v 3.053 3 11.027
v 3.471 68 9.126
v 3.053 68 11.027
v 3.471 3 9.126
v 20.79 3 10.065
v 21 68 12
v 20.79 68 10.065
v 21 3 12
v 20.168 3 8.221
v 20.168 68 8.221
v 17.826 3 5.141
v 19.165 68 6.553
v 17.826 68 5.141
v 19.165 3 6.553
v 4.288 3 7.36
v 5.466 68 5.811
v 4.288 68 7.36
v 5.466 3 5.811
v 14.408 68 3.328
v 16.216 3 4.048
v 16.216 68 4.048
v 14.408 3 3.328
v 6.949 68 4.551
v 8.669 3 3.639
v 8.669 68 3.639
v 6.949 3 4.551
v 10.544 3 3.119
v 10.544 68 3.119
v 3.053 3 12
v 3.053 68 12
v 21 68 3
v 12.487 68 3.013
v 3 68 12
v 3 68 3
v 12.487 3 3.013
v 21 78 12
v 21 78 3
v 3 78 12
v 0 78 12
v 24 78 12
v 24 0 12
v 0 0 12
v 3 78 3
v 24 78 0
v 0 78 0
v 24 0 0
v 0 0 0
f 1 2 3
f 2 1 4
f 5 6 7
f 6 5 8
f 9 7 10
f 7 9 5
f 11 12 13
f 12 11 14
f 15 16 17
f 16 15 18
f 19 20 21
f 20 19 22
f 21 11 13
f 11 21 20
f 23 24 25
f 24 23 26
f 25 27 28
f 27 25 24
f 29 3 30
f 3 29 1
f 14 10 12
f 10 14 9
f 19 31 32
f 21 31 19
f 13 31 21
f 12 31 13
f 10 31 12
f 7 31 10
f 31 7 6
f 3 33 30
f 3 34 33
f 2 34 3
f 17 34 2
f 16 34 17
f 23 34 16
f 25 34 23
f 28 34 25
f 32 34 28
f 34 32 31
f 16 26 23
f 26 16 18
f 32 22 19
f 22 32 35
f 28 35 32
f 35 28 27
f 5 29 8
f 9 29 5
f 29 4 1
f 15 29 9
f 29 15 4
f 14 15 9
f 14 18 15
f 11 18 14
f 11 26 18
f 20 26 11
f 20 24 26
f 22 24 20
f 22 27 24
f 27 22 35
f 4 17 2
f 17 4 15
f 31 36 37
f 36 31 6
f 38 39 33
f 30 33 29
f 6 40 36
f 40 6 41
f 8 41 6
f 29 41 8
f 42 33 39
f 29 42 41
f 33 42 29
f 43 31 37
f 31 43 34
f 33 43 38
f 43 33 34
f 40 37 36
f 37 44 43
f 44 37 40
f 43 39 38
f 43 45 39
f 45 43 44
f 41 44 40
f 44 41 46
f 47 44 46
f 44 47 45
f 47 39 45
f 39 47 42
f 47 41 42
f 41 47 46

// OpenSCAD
cell_length = 65;
cell_diameter = 18;
cell_radius = cell_diameter/2;
wall_thickness = 3;
solder_space = 7;
spacing = 16;
height = wall_thickness+cell_radius;
module _18650() {
color("lightgreen")
translate([cell_radius, 0, cell_radius])rotate([270,0,0])cylinder(cell_length, d=cell_diameter);
}
difference(){
	cube([2*wall_thickness+cell_diameter,
		  2*wall_thickness+1*solder_space+1*cell_length,
		  height
	]);
	translate([wall_thickness, wall_thickness, wall_thickness]){
		_18650();
		translate([0, cell_length, 0])cube([cell_diameter, solder_space+wall_thickness, height-wall_thickness]);
	}
}
